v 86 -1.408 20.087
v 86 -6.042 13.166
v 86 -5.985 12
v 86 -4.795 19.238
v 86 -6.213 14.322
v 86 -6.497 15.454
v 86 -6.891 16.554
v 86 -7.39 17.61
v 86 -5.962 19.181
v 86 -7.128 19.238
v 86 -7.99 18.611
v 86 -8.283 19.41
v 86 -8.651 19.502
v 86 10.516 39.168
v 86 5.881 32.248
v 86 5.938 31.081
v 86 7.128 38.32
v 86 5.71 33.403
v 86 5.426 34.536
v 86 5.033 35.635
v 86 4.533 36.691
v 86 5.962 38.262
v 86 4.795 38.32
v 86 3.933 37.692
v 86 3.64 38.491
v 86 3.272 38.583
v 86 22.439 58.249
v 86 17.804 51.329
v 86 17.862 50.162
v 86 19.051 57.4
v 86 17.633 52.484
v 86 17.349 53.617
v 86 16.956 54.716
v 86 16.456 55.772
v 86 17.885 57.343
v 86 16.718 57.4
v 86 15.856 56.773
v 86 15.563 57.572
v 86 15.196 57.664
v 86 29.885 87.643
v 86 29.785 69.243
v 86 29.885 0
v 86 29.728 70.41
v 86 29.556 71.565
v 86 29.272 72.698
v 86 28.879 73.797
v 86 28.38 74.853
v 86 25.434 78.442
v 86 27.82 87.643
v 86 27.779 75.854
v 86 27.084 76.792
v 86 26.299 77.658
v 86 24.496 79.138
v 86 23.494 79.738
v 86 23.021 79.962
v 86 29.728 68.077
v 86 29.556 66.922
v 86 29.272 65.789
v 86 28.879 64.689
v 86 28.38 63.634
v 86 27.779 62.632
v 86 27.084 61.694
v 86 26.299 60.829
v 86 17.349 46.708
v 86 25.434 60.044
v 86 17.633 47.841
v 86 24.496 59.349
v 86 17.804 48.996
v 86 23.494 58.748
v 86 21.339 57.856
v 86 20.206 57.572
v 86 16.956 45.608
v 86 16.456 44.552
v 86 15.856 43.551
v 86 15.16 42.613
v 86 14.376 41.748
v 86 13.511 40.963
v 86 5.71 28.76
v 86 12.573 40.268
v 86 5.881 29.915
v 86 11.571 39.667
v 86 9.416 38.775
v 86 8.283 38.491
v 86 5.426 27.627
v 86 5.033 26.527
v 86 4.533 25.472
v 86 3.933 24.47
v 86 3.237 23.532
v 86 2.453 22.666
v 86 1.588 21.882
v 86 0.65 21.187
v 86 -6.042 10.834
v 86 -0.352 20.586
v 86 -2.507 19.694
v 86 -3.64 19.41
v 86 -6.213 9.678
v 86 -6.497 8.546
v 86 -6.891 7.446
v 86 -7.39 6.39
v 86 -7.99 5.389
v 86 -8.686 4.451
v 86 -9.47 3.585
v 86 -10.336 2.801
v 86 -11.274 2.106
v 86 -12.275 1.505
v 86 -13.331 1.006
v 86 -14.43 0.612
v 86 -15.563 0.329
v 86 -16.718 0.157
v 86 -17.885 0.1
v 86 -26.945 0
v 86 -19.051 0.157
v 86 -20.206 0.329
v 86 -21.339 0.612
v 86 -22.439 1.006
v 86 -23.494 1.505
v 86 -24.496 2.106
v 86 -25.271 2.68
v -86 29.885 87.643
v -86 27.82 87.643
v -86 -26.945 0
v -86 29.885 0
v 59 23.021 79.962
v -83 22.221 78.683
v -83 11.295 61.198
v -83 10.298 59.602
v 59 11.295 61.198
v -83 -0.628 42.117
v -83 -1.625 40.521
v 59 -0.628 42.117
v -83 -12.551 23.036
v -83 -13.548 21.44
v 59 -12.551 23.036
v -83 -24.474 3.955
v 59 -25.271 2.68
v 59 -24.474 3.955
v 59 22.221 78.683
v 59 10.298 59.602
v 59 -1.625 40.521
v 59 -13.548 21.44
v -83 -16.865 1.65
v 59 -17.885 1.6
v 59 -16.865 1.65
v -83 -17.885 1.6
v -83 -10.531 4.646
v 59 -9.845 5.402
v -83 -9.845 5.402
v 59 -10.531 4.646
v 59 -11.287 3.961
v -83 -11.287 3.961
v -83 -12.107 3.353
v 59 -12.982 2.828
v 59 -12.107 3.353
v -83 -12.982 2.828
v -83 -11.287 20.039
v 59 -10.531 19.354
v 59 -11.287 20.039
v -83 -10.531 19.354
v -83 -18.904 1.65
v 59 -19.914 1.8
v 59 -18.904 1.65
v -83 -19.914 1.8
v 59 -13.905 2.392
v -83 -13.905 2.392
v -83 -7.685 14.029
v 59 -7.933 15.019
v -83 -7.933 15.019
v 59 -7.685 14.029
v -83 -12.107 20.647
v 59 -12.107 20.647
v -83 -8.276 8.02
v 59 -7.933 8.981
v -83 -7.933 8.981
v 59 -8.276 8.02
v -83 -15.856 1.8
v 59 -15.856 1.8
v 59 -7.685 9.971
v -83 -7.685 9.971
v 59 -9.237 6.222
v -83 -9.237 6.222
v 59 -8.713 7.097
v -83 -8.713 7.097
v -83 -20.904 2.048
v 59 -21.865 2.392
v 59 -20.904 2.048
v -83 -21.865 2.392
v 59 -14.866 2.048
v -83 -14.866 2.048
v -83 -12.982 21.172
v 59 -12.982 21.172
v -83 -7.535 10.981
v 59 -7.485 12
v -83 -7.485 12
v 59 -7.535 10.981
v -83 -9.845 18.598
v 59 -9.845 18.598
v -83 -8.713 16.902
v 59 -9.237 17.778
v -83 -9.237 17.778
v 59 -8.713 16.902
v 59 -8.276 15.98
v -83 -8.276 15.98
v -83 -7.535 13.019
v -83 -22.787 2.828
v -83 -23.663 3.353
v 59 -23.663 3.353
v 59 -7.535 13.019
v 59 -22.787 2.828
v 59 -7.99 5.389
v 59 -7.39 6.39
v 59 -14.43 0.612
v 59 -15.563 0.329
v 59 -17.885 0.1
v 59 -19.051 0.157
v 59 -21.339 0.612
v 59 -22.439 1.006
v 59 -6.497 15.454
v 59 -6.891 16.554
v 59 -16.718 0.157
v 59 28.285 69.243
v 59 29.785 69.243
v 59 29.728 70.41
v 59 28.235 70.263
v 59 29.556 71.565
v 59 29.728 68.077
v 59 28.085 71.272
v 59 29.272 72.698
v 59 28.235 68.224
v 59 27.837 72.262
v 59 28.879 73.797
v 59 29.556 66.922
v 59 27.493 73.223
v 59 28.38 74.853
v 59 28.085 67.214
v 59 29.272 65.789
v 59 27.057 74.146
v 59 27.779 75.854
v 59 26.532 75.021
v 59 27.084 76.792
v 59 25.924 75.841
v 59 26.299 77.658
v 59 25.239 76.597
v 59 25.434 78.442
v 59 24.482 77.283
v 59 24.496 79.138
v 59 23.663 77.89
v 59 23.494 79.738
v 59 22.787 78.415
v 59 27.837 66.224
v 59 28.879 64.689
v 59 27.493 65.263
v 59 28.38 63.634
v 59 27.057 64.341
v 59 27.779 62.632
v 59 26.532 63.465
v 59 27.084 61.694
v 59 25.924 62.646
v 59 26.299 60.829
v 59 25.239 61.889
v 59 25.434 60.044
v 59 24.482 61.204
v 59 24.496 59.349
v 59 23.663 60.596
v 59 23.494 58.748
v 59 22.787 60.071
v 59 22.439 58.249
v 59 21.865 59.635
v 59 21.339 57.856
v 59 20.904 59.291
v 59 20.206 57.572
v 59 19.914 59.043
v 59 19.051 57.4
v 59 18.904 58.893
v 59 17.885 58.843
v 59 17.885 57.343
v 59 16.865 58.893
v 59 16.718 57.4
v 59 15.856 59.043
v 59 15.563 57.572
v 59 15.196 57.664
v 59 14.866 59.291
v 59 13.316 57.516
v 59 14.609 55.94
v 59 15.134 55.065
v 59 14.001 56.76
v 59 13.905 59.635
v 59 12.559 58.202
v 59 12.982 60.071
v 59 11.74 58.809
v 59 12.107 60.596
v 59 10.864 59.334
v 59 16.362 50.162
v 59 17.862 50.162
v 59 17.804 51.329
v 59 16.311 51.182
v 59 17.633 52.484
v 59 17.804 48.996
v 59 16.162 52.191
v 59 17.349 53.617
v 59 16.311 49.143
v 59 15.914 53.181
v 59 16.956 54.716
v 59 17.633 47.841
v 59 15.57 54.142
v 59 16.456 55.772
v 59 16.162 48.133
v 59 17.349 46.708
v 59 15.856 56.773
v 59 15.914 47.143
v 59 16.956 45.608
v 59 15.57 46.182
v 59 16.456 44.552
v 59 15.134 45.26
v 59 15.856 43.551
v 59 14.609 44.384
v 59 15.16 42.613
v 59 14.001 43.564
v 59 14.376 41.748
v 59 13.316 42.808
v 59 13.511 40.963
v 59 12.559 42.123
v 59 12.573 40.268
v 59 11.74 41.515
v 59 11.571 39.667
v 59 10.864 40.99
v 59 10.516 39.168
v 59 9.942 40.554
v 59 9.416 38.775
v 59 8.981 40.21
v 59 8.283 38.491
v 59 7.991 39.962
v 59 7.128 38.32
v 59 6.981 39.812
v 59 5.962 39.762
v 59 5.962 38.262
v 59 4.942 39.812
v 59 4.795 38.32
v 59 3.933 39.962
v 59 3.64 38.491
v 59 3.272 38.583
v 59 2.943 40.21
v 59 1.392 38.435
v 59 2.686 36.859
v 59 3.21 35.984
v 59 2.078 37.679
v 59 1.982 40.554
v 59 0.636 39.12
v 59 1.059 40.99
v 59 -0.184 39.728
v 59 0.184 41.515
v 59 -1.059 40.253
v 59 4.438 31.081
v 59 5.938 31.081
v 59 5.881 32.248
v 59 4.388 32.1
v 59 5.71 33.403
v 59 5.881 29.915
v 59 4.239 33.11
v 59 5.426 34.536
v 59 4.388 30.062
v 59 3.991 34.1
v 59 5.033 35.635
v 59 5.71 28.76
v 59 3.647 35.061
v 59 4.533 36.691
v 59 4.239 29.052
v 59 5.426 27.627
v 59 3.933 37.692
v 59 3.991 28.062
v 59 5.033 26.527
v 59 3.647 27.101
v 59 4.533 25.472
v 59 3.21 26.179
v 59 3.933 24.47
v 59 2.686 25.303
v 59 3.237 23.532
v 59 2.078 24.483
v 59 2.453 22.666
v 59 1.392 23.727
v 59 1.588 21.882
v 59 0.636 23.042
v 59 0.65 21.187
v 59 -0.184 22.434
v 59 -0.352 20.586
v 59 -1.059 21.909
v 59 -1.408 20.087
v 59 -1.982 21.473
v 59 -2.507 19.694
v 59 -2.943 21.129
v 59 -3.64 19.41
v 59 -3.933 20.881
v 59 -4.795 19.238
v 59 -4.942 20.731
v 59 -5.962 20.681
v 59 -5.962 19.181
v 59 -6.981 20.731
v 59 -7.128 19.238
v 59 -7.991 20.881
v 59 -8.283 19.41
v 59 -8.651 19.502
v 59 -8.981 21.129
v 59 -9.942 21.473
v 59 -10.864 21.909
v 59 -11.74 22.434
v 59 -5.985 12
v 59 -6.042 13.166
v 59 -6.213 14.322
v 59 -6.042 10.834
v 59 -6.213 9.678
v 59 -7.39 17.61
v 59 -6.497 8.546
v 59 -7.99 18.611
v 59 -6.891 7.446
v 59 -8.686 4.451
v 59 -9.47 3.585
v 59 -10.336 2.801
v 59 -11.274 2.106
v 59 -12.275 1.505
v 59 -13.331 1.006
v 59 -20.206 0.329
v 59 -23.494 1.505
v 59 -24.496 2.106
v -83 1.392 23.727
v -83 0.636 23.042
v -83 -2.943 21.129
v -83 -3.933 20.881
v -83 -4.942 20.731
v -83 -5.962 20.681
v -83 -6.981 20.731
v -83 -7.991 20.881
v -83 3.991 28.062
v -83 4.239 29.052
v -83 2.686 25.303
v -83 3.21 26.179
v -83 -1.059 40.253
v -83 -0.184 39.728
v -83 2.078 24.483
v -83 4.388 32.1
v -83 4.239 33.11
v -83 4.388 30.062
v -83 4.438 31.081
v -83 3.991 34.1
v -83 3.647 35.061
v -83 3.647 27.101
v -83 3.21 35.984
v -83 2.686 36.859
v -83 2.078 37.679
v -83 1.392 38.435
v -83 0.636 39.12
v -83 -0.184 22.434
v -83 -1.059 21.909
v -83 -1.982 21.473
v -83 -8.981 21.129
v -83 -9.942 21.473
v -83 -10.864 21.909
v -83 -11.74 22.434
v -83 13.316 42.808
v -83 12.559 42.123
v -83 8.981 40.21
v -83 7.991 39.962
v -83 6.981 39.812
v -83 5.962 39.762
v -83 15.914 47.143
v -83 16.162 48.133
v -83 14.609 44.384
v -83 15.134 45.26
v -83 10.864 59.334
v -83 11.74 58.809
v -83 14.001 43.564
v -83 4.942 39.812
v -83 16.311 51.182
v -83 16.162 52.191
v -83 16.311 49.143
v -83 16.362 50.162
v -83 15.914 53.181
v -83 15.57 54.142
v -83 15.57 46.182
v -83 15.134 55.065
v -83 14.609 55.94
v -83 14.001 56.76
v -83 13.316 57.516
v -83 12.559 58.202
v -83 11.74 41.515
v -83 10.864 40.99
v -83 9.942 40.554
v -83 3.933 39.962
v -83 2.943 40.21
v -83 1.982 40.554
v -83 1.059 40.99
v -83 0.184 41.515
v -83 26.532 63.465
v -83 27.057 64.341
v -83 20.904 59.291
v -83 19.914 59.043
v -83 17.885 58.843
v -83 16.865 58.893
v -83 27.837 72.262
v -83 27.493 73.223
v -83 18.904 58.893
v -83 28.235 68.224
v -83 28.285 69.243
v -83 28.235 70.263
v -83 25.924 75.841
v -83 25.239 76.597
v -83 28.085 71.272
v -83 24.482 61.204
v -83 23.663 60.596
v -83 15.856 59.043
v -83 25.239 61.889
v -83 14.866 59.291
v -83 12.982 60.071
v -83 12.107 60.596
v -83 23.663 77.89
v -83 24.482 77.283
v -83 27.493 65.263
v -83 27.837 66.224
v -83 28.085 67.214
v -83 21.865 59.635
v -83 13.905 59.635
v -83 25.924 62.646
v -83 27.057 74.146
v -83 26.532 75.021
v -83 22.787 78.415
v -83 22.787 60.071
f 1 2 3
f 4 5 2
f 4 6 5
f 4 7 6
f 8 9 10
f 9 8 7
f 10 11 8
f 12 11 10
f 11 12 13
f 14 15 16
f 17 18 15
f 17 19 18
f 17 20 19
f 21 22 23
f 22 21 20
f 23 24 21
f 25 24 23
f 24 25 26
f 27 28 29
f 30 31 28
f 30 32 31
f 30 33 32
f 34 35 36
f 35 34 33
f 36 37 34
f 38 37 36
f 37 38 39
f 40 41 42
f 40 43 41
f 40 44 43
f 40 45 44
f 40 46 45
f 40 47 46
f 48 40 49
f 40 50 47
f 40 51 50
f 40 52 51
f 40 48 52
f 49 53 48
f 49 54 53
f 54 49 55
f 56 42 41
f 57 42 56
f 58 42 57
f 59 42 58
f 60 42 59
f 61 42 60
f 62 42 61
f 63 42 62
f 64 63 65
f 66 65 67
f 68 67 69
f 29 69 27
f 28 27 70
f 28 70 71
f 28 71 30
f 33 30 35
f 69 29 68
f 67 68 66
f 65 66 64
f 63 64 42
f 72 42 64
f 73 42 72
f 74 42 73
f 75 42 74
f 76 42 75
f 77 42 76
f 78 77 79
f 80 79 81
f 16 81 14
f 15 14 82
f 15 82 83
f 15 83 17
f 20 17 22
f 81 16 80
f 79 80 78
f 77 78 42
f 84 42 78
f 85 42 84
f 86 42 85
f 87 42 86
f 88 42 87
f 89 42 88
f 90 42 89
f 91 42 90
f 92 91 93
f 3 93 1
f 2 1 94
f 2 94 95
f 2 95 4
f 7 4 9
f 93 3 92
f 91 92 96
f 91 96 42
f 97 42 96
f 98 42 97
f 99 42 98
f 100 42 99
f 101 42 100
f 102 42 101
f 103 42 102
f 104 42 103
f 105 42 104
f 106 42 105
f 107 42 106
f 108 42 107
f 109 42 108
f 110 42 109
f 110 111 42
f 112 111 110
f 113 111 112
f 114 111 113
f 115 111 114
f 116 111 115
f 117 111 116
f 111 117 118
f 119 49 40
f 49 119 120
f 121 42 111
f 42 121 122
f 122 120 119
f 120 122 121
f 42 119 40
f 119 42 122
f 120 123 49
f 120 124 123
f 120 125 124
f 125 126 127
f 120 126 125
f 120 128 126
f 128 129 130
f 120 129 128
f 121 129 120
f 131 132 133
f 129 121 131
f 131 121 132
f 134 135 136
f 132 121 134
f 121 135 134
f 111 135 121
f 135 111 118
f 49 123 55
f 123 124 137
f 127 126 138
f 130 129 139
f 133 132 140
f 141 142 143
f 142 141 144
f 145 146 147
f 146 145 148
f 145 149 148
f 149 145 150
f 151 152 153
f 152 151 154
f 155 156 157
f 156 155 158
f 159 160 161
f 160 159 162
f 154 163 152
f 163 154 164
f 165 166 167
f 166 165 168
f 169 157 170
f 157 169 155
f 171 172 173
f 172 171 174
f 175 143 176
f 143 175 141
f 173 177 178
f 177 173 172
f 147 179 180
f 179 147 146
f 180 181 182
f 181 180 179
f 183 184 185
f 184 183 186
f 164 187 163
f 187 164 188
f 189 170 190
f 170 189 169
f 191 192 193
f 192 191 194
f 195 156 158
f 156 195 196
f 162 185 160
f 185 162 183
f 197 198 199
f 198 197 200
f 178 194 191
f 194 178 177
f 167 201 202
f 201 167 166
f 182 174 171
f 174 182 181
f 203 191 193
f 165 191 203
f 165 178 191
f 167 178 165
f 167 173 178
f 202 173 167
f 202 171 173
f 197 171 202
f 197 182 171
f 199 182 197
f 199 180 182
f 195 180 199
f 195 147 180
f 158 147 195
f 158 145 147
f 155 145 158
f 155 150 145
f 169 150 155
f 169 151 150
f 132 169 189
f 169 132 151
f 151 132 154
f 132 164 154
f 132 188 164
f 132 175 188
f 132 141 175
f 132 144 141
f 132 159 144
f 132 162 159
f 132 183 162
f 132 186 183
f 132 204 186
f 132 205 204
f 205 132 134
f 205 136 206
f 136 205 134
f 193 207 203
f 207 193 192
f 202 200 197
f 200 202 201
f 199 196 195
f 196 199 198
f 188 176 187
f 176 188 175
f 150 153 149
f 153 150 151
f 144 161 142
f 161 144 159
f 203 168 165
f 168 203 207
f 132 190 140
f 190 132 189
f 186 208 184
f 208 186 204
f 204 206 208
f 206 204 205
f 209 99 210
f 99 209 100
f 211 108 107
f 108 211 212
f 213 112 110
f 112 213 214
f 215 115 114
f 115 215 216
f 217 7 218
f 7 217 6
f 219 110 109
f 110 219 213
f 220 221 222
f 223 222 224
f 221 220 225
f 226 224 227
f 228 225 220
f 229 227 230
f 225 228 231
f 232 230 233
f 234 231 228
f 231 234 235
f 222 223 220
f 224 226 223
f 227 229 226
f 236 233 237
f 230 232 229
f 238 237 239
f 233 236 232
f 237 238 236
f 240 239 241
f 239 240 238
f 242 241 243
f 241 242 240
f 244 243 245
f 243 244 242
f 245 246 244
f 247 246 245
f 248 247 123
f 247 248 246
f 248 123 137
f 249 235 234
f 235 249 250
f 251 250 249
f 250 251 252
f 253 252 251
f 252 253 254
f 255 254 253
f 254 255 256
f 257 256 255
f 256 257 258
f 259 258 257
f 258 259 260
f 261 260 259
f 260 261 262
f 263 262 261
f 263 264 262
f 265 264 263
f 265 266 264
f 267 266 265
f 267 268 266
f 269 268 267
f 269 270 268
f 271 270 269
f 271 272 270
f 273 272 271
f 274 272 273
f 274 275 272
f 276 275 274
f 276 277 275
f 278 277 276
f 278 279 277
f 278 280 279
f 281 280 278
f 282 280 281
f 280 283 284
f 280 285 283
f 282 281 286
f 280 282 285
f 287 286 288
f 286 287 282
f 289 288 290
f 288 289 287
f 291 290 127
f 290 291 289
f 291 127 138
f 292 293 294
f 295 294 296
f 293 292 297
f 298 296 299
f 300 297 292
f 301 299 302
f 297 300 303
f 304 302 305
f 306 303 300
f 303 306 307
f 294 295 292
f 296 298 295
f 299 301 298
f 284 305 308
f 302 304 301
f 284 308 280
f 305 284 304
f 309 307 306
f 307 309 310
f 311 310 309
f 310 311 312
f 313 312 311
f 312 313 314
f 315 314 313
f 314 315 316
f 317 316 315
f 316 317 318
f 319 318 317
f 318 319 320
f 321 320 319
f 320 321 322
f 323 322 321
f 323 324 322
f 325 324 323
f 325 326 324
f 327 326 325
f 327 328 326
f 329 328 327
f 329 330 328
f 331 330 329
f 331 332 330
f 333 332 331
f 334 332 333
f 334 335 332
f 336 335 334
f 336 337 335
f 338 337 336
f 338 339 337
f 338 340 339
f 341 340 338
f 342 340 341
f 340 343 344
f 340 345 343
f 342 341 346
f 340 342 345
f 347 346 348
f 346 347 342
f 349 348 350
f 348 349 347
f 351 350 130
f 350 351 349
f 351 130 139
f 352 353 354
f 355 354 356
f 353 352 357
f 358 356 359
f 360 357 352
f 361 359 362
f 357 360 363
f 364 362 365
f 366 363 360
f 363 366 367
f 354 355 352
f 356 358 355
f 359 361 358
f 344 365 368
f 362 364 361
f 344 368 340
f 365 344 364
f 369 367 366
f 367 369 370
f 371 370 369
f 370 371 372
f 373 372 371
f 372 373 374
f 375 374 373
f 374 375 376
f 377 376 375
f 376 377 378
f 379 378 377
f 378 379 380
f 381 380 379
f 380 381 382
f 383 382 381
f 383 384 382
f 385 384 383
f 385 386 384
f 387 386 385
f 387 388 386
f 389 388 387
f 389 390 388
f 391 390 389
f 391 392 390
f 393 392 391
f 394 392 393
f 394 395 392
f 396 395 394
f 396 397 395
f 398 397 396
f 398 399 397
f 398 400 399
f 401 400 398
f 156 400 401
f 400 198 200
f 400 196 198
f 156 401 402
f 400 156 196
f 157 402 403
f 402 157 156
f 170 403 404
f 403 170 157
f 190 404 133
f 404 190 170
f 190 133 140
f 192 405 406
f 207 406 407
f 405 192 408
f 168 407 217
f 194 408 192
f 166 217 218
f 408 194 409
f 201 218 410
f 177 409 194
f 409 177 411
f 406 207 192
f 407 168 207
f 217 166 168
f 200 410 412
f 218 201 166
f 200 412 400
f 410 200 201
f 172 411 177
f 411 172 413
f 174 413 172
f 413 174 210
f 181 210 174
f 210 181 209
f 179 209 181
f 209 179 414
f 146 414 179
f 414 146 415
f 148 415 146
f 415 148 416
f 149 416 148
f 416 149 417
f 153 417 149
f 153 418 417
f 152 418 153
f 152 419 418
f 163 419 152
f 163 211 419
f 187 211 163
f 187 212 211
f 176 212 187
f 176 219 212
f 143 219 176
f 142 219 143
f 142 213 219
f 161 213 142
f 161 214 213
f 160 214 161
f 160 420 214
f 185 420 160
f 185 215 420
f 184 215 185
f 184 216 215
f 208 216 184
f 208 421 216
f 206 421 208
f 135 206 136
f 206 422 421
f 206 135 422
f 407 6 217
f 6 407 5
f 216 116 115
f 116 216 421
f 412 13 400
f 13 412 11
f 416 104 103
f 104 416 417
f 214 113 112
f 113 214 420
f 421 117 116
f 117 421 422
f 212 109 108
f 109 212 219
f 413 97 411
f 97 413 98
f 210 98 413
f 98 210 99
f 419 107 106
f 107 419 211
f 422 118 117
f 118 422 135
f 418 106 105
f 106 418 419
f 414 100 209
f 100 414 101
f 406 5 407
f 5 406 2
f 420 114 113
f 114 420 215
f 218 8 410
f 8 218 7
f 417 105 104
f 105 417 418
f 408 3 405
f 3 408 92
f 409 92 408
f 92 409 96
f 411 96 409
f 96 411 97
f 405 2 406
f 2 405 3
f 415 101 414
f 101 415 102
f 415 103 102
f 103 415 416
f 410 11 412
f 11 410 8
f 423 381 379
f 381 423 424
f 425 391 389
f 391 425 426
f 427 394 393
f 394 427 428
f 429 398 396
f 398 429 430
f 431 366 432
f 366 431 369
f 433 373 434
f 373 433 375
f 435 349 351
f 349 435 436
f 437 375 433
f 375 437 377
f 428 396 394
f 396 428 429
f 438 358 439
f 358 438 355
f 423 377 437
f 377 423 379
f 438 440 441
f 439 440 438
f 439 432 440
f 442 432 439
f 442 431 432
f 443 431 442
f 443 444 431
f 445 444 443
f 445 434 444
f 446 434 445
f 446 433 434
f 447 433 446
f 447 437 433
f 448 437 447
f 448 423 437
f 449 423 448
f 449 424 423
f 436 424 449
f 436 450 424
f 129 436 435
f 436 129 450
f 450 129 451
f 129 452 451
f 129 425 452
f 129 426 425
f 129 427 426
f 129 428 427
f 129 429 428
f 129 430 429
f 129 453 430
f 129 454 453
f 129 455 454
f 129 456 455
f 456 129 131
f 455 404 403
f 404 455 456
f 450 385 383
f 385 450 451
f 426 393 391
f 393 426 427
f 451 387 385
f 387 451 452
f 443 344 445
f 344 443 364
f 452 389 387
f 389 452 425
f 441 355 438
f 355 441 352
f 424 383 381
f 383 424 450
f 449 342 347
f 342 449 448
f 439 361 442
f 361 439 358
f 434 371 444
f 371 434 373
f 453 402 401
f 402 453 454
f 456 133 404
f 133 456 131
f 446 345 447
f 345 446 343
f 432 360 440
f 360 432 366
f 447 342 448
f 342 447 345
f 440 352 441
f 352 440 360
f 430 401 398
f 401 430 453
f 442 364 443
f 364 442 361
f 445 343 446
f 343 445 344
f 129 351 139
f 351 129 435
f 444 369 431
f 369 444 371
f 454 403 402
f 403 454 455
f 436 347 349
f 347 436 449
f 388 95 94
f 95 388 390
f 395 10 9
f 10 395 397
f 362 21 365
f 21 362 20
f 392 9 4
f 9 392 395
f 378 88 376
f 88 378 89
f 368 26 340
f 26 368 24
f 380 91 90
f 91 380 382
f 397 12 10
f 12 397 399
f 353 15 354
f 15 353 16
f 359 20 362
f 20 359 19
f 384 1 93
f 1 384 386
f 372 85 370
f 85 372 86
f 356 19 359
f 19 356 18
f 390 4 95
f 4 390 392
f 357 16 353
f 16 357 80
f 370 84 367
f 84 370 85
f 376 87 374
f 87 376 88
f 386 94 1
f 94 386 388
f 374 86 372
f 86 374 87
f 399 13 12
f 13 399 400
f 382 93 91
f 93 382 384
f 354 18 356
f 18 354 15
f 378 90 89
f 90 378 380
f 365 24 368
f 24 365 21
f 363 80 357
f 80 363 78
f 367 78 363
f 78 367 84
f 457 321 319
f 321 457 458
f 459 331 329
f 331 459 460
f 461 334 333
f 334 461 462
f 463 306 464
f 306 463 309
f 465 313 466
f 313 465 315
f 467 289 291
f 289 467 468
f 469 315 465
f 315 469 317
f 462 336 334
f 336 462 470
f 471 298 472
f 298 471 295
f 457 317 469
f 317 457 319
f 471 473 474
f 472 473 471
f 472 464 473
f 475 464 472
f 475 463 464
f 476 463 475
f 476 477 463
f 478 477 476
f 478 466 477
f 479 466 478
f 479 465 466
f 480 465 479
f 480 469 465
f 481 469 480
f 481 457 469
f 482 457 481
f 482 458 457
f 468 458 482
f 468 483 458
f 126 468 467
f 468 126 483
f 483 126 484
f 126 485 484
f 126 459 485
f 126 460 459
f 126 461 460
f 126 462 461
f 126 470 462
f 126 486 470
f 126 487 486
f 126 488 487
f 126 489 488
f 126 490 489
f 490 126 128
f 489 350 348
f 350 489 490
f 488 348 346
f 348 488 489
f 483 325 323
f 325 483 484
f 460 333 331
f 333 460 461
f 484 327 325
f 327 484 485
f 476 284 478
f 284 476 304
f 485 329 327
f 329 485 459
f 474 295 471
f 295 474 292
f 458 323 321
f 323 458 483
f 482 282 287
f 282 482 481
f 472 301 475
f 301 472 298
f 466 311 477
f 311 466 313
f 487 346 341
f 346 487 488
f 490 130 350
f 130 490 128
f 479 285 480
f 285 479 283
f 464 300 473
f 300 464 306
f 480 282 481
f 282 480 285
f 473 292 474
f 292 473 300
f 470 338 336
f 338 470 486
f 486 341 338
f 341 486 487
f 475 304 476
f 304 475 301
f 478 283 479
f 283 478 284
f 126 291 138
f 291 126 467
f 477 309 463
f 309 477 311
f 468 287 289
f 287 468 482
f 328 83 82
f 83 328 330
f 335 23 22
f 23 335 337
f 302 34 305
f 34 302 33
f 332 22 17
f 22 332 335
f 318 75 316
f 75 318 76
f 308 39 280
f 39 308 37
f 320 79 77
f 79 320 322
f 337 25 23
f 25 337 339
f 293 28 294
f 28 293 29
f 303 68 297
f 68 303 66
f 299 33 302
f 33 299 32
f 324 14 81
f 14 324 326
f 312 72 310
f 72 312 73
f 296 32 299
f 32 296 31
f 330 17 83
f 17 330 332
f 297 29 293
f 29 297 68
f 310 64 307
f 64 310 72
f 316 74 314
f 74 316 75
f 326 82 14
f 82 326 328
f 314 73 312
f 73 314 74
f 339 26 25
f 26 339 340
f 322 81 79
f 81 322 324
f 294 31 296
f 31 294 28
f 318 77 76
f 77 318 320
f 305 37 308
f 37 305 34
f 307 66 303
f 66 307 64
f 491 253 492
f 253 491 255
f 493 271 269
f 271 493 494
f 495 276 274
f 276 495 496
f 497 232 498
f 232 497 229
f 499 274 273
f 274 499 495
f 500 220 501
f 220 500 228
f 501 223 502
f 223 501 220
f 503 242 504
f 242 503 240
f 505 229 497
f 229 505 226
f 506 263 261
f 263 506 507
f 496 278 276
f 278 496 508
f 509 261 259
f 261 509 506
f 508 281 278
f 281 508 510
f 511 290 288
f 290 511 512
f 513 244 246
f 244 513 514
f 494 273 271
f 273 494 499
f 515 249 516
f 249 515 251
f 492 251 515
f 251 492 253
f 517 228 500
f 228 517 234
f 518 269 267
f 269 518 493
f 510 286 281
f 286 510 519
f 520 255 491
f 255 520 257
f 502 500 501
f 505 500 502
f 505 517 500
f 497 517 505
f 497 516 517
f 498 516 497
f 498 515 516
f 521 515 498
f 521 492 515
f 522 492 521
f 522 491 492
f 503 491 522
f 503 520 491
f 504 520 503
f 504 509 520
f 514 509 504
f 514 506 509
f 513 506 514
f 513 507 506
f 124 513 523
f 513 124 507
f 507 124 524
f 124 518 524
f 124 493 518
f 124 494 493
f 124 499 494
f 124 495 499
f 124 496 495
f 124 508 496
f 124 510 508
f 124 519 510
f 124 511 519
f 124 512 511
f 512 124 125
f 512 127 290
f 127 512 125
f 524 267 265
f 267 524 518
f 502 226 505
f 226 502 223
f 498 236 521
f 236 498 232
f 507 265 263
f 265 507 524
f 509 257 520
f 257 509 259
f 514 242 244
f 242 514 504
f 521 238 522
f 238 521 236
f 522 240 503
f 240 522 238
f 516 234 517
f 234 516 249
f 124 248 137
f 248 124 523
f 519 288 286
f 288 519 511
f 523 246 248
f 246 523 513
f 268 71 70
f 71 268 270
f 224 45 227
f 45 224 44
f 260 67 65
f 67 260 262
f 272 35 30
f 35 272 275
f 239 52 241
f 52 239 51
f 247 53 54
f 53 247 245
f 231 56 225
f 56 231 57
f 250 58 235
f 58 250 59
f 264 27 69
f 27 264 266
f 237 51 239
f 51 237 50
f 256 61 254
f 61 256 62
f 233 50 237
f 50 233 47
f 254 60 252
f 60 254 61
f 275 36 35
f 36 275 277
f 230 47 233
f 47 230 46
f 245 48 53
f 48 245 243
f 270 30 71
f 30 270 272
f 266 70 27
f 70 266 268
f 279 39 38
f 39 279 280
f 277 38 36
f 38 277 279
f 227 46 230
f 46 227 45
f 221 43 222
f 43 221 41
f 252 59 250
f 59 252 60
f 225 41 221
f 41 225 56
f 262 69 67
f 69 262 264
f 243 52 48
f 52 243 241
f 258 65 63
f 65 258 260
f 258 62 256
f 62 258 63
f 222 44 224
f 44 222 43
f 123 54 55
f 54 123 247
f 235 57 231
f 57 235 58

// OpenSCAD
// file: common.scad
// ============================================================
// common.scad — shared parameters + modules for all designs
// LOCKED PEN SPECIFICATION (do not change)
// ============================================================
PEN_L = 165;      // pen length (mm)
PEN_A = 17;       // pen cross-section minor
PEN_B = 20;       // pen cross-section major (used as diameter envelope)
CLEAR = 0.4;      // fit clearance
WALL  = 1.6;      // minimum wall thickness

$fn = 64;

RCH = PEN_B/2 + CLEAR;   // = 10.4  channel radius
EPS = 0.01;

// --- open-top U trough cut, axis along X, centered at local origin -----------
// Removes a lower half-cylinder of radius r plus a full-width vertical slot
// upward, so the channel is open at the top (no ceiling -> no overhang).
module trough_cut(len, r=RCH, top=80) {
    union() {
        rotate([0,90,0]) cylinder(h=len, r=r, center=true);
        translate([0,0,top/2]) cube([len, 2*r, top], center=true); // slot upward
    }
}

// --- teardrop hole, axis along X, centered at local origin --------------------
// 45-degree self-supporting apex pointing +Z so a horizontal bore can print
// without support.
module teardrop_cut(len, r=RCH) {
    rotate([0,90,0])
        linear_extrude(height=len, center=true)
            union() {
                circle(r=r);
                polygon([[ 0.7071*r, 0.7071*r],
                         [ 0,         1.4142*r],
                         [-0.7071*r,  0.7071*r]]);
            }
}

// --- dial relief: widened open-top pocket at one channel end -----------------
// place at the +X or -X end of a channel so the dose dial clears / can be turned
module dial_relief(end_x, r=RCH+2.2, len=28, top=80) {
    translate([end_x, 0, 0]) trough_cut(len, r, top);
}
// file: rack_lib.scad
// rack_lib.scad — parametric reclined "toast-rack" for horizontal pens
// One module, driven by params, so each design iteration is an attributable
// change. Pens load from the top-front long face (radially into each groove);
// the ramp faces up so it prints support-free.
include <common.scad>

LBLK = PEN_L + 7;   // 172  overall body length (< 177.8), leaves end walls

// n       : number of pens
// phi     : ramp angle from horizontal (deg) — steeper = narrower + more top-load
// P       : along-ramp center spacing (>= 22.4 so pens don't intersect)
// lip     : grooves cut this far below the ramp plane -> snap-retention lip
// rr      : dial-relief radius (wider mouth at +X end)
// rlen    : dial-relief length along X
// endwall : solid wall thickness left at each end of a groove (containment)
// scoop   : add a thumb-scallop at the +X mouth for easy pen removal
// plate   : recess a nameplate/label pocket into the flat back face
// vials   : number of vertical vial wells bored into the back-top shelf (0 = none)
module rack(n=4, phi=58, P=22.5, lip=2.5, rr=RCH+1.5, rlen=30,
            endwall=3, scoop=false, plate=false, vials=0) {
    cph = cos(phi);
    sph = sin(phi);
    yc  = [for (i=[0:n-1]) (-(n-1)/2 + i) * P * cph];
    zc  = [for (i=[0:n-1]) (RCH + WALL) + i * P * sph];

    ymin = yc[0]   - RCH - WALL;
    ymax = yc[n-1] + RCH + WALL;
    Wb   = ymax - ymin;
    ycen = (ymax + ymin) / 2;
    Hbox = zc[n-1] + RCH + (vials > 0 ? 16 : 8);   // extra back-top stock for wells
    glen = LBLK - 2 * endwall;
    relief_cx = LBLK/2 - rlen/2 + 3;               // pokes ~3 past +X face
    big = 800;

    difference() {
        // ---- solid wedge: box with its top sheared off along the ramp plane ----
        difference() {
            translate([0, ycen, Hbox/2]) cube([LBLK, Wb, Hbox], center=true);
            translate([0, yc[0], zc[0] + lip])
                rotate([phi, 0, 0])
                    translate([0, 0, big/2]) cube([LBLK + 2, big, big], center=true);
        }

        // ---- grooves + dial relief (+ optional thumb scoop) ----
        for (i = [0:n-1]) {
            translate([0, yc[i], zc[i]])                       // main groove
                rotate([0,90,0]) cylinder(h=glen, r=RCH, center=true);
            translate([relief_cx, yc[i], zc[i]])               // dial relief mouth
                rotate([0,90,0]) cylinder(h=rlen, r=rr, center=true);
            if (scoop)
                translate([LBLK/2, yc[i] - 0.30*RCH, zc[i]]) sphere(r=7.5);
        }

        // ---- optional vertical vial wells in the back-top shelf ----
        if (vials > 0) {
            wy = ymax - 9;                                     // along the back edge
            for (k = [0:vials-1]) {
                wx = -((vials-1)/2)*44 + k*44;
                translate([wx, wy, Hbox - 22 + EPS])
                    cylinder(h = 22, d = 14);
            }
        }

        // ---- optional nameplate recess in the flat back face ----
        if (plate)
            translate([0, ymax + EPS, zc[n-1]*0.5])
                rotate([90,0,0]) translate([0,0,-0.8])
                    linear_extrude(1.2) square([90, 16], center=true);
    }
}
// main file
// Iter2 — usability: add thumb-scoops at the +X mouths for easy pen removal.
include <rack_lib.scad>
rack(n=4, phi=58, P=22.5, lip=2.5, endwall=3, scoop=true);
